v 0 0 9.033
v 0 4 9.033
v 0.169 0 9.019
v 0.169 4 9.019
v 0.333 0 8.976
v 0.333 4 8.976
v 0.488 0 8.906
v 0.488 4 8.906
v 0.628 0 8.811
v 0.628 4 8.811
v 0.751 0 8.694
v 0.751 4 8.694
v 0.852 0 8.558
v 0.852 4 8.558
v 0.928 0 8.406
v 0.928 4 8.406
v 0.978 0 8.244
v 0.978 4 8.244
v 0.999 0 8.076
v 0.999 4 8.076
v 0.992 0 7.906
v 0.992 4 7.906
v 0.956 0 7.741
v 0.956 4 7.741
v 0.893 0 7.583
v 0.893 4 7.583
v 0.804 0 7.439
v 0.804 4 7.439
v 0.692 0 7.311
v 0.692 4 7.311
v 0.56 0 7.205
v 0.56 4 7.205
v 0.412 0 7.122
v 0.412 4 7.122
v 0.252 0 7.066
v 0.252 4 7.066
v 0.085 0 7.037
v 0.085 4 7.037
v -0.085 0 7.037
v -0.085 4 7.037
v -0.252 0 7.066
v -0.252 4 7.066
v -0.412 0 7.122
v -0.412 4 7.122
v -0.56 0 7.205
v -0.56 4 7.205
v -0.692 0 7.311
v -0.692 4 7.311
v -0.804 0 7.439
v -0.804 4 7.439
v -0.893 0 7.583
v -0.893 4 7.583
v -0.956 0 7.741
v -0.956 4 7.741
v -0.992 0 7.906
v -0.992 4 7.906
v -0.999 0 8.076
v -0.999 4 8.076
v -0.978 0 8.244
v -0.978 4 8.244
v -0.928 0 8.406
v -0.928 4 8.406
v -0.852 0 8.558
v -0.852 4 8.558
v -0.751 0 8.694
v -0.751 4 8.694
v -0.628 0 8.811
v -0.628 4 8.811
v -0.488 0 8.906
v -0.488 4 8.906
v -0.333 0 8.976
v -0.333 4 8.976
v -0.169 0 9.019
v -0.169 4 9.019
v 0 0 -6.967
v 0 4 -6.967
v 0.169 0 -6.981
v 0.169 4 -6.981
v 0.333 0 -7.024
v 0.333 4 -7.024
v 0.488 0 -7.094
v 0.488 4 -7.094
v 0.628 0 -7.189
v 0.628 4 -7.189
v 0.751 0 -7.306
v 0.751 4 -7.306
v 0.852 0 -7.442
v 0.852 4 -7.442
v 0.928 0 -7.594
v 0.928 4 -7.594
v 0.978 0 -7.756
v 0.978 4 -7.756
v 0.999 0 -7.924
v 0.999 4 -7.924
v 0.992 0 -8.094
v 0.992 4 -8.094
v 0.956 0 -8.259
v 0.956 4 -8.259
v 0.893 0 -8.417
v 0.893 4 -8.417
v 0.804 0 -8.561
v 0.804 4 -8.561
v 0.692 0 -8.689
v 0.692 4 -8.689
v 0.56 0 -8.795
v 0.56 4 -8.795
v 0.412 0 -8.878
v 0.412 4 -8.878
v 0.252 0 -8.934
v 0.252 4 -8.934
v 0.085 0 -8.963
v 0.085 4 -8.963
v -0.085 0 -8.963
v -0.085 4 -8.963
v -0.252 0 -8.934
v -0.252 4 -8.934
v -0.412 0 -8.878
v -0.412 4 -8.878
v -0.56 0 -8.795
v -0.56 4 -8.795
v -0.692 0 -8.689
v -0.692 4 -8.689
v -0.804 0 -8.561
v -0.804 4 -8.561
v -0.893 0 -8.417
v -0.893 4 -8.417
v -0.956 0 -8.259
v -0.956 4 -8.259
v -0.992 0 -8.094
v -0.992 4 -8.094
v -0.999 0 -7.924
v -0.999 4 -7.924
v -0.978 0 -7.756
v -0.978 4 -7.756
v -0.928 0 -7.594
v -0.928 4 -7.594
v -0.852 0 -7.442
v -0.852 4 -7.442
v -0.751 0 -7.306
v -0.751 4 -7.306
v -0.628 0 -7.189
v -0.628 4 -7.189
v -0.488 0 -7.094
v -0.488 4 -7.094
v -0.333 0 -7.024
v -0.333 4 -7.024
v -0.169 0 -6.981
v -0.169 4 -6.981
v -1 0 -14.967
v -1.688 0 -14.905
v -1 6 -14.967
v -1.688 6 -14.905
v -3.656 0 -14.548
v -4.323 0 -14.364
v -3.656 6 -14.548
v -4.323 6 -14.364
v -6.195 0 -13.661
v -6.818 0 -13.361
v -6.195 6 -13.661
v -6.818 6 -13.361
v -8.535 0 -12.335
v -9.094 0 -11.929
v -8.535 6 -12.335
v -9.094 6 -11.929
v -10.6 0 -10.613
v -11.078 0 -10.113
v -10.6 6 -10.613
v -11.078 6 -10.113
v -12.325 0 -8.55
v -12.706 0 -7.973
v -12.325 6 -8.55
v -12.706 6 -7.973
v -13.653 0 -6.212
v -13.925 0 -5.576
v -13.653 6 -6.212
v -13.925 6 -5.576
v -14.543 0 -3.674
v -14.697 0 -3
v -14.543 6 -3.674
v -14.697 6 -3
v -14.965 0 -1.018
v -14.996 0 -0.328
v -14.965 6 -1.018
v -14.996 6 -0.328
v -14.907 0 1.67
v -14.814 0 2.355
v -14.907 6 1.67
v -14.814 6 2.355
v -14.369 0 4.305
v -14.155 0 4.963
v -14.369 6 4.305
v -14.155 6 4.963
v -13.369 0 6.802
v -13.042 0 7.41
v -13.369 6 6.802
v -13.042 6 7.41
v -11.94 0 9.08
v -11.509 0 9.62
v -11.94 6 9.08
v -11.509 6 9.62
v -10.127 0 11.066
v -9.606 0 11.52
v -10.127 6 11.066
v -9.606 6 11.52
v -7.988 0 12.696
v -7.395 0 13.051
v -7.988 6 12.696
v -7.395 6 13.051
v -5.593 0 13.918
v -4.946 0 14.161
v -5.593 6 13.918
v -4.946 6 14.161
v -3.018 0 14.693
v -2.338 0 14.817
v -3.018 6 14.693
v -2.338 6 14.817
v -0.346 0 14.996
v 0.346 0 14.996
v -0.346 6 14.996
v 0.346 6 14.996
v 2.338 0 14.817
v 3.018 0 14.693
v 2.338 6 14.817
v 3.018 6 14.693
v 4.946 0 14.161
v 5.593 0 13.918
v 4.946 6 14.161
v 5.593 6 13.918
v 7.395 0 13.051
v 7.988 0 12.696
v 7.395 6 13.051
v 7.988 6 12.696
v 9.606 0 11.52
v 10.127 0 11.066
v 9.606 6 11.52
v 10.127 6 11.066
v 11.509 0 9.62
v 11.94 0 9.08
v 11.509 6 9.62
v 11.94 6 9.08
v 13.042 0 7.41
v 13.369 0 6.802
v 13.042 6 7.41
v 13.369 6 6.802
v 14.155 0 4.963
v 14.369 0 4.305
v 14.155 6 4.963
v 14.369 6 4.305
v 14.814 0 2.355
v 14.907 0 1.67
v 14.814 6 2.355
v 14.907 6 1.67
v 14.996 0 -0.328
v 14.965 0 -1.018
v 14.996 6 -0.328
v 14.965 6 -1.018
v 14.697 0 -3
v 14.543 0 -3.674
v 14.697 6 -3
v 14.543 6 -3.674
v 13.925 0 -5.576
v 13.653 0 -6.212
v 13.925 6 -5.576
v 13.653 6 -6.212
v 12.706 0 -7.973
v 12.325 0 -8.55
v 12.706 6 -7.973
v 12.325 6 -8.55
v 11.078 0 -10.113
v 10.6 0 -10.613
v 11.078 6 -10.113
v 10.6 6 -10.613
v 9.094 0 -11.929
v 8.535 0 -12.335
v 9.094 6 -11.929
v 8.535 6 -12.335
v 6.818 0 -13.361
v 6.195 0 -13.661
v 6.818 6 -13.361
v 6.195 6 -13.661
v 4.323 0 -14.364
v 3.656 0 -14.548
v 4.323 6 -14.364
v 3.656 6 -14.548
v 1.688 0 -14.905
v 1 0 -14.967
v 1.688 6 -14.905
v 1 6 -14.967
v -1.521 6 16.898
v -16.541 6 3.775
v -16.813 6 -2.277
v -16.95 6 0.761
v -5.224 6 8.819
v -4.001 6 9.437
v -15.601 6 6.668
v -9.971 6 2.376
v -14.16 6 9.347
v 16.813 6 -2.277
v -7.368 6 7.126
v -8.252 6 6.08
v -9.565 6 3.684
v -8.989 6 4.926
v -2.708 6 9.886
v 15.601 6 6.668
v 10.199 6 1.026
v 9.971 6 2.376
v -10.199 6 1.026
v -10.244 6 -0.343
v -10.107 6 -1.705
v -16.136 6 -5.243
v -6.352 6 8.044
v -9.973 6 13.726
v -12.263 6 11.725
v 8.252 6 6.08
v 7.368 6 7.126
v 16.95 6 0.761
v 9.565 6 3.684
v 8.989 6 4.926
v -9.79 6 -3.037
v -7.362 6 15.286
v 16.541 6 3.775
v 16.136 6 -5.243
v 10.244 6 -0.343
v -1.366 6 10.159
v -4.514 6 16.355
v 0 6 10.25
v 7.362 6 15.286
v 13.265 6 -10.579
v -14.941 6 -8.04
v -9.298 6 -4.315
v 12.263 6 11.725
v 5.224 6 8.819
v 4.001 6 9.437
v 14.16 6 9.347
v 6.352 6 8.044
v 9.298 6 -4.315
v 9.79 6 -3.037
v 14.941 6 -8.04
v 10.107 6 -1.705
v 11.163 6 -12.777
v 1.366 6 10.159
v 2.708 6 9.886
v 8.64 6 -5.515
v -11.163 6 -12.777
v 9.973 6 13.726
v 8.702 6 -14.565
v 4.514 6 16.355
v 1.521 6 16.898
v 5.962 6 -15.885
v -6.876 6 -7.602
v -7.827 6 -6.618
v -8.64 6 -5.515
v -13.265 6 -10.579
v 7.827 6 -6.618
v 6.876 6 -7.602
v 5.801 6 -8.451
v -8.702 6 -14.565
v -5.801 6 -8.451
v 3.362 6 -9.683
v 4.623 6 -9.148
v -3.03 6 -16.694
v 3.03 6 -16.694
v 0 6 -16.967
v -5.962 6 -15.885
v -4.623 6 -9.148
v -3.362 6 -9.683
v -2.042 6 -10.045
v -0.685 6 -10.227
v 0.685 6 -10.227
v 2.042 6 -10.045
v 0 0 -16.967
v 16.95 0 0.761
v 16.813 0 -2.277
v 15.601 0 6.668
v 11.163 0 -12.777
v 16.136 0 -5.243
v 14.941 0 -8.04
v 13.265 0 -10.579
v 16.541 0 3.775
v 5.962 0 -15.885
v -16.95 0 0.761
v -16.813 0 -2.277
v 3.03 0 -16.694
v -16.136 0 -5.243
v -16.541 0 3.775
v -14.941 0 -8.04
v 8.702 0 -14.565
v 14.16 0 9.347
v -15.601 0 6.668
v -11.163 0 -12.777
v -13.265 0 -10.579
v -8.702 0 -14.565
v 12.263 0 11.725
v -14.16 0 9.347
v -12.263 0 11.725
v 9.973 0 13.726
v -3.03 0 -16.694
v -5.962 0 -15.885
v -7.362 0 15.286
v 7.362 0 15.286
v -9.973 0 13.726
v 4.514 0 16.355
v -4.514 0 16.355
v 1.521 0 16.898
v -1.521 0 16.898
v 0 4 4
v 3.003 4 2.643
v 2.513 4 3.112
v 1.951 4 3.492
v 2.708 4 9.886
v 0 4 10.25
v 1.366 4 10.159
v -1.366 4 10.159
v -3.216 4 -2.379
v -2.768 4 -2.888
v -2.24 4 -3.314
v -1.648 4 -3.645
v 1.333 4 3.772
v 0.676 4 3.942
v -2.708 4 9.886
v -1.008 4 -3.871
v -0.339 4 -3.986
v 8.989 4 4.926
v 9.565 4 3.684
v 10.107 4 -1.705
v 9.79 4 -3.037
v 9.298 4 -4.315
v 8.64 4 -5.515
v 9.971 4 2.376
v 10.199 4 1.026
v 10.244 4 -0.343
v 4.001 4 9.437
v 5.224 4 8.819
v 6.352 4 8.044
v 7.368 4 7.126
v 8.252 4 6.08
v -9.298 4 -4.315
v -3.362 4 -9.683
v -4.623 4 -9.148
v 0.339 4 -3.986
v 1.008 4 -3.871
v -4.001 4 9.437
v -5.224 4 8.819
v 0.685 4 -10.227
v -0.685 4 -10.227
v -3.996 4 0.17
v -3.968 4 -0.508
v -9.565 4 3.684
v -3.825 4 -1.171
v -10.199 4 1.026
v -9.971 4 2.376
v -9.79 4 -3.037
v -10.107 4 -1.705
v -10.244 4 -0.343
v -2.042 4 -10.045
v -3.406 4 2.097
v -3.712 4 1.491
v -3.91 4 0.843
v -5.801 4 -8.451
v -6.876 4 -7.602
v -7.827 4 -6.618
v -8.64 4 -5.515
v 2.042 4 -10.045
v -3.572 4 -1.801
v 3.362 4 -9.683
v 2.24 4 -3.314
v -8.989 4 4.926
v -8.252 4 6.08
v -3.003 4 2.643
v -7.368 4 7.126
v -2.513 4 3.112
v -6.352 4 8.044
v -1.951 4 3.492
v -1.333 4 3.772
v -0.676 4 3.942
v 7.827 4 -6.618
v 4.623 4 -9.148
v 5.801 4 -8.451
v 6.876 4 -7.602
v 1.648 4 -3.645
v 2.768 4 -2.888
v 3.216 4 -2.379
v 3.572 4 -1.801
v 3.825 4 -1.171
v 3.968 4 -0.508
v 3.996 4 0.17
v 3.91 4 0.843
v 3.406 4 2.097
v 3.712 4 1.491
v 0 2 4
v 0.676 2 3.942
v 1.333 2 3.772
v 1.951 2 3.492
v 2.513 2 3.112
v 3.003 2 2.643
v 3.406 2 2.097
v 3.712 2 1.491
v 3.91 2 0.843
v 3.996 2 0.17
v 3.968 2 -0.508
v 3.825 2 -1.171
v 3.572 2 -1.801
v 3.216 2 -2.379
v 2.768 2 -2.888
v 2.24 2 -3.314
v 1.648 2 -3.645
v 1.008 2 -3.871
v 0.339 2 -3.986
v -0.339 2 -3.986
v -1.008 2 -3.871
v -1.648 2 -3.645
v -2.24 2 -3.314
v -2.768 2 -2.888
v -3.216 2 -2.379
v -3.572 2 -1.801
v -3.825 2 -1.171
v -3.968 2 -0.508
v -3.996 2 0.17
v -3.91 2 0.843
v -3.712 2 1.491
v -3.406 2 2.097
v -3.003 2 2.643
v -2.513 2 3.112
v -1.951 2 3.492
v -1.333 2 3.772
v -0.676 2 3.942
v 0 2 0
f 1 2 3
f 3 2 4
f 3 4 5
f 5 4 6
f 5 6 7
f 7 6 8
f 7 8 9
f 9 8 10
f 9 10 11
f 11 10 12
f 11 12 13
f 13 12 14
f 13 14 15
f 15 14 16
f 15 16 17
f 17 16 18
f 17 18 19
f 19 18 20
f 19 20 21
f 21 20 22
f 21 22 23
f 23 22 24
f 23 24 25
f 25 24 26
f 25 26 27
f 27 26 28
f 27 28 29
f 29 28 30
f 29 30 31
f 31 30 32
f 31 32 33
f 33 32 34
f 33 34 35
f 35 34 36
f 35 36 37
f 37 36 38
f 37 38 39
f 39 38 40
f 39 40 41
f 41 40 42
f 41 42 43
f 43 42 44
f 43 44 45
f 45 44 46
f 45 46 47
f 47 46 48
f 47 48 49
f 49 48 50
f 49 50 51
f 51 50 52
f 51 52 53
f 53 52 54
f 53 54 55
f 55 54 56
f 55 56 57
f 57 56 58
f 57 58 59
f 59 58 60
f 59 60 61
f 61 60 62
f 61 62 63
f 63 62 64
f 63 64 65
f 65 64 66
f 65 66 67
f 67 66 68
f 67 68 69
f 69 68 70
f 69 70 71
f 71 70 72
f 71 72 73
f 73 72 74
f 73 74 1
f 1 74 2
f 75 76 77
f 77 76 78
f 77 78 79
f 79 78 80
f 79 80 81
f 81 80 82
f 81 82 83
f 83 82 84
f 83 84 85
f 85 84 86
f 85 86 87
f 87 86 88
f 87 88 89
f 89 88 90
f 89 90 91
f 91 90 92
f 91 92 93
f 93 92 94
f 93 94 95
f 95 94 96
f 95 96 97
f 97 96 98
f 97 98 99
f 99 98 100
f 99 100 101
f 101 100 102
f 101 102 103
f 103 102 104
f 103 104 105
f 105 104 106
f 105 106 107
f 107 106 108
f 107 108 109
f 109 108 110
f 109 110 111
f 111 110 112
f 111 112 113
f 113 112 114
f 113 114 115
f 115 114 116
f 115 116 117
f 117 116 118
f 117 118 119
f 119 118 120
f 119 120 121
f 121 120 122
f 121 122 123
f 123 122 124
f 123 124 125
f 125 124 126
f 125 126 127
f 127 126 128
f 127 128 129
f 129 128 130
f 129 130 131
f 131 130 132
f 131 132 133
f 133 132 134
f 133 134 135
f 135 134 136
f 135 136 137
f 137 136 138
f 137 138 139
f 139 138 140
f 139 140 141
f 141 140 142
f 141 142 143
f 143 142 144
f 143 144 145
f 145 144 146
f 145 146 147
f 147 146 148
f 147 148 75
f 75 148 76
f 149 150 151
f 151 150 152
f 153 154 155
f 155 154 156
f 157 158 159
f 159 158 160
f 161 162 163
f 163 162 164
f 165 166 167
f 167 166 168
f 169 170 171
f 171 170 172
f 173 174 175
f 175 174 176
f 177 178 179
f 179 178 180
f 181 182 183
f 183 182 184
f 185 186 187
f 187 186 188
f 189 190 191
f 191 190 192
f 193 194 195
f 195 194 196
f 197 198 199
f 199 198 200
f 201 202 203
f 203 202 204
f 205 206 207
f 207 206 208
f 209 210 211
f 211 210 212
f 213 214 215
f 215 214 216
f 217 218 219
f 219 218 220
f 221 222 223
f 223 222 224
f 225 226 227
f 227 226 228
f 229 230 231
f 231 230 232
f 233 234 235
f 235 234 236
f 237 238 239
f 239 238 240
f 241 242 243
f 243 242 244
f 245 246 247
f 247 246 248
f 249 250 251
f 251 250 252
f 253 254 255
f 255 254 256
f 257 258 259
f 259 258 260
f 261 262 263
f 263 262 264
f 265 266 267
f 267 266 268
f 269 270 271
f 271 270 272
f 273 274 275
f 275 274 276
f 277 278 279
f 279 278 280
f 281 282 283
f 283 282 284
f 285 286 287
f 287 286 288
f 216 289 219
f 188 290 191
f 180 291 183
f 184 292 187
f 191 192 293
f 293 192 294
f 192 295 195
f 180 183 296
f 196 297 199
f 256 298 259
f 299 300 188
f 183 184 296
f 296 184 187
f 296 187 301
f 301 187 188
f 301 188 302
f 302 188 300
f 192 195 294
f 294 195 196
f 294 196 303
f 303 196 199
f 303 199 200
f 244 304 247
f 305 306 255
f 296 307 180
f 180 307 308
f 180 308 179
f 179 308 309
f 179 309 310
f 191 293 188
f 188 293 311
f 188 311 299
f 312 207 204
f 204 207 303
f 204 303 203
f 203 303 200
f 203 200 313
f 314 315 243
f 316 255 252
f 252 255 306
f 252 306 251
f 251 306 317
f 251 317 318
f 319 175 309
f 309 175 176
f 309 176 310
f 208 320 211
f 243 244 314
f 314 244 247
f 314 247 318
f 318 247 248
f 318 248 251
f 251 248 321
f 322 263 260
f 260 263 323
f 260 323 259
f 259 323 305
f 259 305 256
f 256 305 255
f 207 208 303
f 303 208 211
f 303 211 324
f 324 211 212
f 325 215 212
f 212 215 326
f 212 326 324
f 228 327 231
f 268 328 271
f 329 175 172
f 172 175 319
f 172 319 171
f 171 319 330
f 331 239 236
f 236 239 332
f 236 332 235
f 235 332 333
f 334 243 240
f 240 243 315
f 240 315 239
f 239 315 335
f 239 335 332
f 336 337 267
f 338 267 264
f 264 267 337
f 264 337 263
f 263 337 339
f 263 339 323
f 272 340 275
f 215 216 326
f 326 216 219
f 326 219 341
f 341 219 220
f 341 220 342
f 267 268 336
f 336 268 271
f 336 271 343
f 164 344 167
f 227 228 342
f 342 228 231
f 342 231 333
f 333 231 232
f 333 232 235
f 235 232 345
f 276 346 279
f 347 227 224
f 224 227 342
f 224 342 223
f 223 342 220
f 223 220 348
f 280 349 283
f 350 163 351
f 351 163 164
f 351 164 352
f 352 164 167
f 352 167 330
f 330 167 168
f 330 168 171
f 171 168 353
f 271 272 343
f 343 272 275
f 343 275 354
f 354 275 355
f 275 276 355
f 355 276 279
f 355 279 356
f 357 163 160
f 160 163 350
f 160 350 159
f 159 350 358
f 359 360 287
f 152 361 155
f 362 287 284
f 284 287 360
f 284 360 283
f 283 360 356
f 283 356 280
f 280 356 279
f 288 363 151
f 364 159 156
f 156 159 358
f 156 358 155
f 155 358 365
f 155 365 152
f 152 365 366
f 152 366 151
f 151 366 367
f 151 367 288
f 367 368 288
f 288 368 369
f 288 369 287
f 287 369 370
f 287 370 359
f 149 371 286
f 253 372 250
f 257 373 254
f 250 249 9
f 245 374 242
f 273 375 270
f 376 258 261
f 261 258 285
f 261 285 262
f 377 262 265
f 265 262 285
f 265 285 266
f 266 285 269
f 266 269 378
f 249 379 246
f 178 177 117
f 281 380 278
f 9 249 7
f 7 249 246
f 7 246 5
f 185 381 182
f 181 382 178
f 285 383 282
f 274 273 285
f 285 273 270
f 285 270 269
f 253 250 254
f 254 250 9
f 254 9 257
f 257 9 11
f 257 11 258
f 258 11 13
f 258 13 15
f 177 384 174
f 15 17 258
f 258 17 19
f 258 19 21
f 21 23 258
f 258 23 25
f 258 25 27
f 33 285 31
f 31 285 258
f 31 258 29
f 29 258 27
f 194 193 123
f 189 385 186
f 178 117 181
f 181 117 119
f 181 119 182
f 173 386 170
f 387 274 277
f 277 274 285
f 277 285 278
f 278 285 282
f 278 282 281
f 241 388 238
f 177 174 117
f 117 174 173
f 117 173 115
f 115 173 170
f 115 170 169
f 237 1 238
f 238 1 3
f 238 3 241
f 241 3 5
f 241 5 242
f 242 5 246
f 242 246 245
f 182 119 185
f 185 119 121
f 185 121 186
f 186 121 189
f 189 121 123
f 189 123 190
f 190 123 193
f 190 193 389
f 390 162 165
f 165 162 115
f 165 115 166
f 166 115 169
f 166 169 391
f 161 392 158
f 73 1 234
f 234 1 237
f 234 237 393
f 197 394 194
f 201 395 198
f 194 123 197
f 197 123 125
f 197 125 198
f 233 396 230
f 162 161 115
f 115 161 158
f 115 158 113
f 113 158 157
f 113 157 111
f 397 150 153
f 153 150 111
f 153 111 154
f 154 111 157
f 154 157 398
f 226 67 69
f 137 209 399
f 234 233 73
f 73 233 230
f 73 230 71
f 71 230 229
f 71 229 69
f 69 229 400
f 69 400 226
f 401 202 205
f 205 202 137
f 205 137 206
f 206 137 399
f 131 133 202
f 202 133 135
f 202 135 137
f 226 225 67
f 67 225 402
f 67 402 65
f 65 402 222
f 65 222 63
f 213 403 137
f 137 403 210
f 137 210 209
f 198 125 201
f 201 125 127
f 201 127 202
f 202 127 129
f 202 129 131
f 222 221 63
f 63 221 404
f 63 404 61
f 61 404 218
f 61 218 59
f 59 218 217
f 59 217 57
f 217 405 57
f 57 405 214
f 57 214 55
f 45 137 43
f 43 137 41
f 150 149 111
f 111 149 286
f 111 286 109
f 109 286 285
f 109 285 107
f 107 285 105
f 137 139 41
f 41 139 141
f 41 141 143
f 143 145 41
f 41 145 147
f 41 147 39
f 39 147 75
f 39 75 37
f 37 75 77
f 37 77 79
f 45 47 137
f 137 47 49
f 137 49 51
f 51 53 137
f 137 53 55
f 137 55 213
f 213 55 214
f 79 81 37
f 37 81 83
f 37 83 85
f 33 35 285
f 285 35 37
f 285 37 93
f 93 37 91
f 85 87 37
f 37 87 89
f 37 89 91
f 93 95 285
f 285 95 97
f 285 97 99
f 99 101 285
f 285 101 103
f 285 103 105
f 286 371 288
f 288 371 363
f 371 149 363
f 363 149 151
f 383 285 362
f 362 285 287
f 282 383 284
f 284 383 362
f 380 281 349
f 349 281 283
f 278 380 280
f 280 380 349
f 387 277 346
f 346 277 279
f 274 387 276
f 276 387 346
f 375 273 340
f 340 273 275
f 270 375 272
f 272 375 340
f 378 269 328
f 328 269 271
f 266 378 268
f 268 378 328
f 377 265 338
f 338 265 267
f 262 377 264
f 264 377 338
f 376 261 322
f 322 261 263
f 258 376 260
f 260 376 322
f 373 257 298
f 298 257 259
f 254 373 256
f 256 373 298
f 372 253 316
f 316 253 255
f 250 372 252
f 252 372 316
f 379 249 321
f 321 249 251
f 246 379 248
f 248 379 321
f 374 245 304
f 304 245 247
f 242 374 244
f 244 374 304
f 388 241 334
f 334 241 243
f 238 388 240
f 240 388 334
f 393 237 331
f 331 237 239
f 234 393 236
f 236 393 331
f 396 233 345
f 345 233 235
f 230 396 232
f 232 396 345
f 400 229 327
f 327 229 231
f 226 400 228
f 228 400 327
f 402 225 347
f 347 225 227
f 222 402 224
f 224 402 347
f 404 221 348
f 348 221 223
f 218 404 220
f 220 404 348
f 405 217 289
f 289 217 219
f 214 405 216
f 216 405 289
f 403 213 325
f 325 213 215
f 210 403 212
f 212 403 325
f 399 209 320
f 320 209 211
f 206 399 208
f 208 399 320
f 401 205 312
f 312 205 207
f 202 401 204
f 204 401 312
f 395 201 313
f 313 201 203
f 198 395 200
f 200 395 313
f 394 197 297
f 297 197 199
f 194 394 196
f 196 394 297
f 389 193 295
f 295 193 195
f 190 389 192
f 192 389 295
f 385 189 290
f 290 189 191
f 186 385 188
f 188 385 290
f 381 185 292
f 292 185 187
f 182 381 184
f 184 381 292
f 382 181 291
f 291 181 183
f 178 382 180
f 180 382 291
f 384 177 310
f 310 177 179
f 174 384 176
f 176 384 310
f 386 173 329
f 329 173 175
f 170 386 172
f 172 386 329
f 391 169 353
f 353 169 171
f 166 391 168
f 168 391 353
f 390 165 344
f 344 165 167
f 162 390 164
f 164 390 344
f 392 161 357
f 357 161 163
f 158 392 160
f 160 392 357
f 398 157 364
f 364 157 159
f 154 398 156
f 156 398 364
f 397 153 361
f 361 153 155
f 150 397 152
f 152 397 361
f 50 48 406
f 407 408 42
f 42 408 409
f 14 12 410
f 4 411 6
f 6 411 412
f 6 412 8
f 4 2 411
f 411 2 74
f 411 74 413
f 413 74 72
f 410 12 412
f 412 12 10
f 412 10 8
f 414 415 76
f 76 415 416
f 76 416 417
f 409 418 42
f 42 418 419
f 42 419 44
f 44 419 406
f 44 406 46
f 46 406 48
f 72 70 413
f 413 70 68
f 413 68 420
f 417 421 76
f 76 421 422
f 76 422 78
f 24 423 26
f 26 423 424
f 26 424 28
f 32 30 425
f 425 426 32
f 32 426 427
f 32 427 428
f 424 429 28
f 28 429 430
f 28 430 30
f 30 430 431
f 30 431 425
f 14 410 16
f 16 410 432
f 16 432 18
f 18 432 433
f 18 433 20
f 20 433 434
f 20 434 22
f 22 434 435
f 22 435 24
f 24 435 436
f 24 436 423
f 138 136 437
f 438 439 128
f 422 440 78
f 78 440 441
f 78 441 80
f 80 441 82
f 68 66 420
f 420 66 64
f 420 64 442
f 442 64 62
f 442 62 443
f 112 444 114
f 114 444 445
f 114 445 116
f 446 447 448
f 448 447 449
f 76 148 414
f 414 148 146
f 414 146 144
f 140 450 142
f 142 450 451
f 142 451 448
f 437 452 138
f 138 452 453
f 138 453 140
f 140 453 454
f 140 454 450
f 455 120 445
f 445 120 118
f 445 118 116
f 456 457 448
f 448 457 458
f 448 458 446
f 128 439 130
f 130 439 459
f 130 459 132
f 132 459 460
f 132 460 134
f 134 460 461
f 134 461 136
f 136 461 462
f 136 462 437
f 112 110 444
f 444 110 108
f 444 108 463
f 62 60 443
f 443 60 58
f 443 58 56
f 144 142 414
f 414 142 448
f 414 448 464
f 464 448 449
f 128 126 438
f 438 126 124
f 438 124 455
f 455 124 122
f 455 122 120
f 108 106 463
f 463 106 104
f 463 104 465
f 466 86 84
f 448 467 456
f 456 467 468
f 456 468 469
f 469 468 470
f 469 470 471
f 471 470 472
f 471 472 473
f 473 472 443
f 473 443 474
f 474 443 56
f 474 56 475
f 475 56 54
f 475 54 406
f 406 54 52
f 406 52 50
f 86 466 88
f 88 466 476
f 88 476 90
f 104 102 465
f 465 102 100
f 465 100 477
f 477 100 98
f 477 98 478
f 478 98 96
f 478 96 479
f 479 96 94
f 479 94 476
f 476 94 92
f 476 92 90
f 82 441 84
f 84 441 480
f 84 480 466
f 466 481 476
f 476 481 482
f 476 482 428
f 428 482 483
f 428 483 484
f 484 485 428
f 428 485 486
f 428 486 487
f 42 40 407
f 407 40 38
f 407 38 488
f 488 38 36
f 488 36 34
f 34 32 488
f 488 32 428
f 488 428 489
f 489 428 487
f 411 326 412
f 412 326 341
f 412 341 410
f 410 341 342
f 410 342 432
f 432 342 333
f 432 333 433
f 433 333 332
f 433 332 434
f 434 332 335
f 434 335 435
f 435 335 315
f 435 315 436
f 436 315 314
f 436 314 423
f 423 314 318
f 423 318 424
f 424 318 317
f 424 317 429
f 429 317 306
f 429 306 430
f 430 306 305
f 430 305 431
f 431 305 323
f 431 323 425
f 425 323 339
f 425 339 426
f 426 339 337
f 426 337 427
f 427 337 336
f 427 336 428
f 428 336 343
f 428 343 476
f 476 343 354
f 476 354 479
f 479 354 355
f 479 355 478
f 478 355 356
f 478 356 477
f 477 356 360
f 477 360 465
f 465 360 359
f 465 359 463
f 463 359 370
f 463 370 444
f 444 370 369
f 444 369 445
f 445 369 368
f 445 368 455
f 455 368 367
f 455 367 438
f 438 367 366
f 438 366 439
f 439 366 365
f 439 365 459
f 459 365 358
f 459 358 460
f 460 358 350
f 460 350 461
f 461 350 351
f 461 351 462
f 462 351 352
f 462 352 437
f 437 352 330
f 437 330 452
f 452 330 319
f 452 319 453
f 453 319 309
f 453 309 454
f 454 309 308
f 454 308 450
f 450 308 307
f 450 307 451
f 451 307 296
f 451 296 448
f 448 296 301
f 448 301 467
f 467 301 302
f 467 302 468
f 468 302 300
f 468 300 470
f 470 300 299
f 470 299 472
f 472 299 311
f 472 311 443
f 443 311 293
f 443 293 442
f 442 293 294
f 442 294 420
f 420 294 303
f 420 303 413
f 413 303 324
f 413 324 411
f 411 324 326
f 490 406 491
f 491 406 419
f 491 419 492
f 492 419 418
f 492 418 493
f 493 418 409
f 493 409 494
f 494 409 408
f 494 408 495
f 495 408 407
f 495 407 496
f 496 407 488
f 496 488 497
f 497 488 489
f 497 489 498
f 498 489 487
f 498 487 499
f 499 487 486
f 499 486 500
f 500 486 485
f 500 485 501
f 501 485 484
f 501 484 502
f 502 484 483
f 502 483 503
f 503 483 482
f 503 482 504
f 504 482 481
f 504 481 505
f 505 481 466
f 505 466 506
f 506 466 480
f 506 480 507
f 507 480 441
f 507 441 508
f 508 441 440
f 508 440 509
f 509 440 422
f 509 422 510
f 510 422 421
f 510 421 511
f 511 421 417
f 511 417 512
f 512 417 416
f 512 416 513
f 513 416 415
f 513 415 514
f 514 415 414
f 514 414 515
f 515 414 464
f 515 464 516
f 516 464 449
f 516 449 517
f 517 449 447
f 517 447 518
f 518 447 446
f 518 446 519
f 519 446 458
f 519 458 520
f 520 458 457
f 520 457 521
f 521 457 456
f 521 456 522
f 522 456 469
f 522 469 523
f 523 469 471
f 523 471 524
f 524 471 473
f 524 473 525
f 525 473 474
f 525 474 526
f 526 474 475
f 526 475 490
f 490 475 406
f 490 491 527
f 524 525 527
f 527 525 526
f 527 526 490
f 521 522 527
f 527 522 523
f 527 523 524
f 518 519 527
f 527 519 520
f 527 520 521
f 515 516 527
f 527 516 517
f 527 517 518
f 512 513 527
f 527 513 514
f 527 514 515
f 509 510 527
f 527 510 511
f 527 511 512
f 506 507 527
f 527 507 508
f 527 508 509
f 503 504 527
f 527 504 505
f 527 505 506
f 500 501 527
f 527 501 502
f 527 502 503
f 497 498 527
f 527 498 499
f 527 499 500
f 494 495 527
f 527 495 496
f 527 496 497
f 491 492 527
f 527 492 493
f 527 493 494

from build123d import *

# Parameters (mm, degrees)
SKETCH_1_R          = 15
EXTRUDE_1_DEPTH     = 6
EXTRUDE_2_DEPTH     = 6
SKETCH_3_R          = 1
CUT_EXTRUDE_1_DEPTH = 6
SKETCH_4_R          = 10.25
CUT_EXTRUDE_2_DEPTH = 2
SKETCH_5_R          = 4
CUT_EXTRUDE_3_DEPTH = 2


with BuildPart() as part:
    # 草图1 → 凸台-拉伸1 (new body)
    with BuildSketch(Plane(origin=(0, 0, 0), x_dir=(1, 0, 0), z_dir=(0, 1, 0))):
        Circle(SKETCH_1_R)
    extrude(amount=EXTRUDE_1_DEPTH)

    # 草图2 → 凸台-拉伸2 (add)
    with BuildSketch(Plane(origin=(0, 6, 0), x_dir=(1, 0, 0), z_dir=(0, 1, 0))):
        Polygon((0, 16.966629547), (-1, 14.966629547), (-1, 14.940773363), (1, 14.940773363), (1, 14.966629547), align=None)
        Polygon((3.656324486, 14.547552758), (3.029508687, 16.69396883), (1.688465309, 14.904666548), (1.683848509, 14.879225883), (3.651707686, 14.522112094), align=None)
        Polygon((6.195131695, 13.660905654), (5.961646472, 15.884750219), (4.322661954, 14.363655302), (4.313576741, 14.339447841), (6.186046483, 13.636698193), align=None)
        Polygon((8.534822274, 12.335185802), (8.702172035, 14.564982666), (6.817924686, 13.360984356), (6.804663068, 13.338788146), (8.521560655, 12.312989592), align=None)
        Polygon((10.600196642, 10.613002928), (11.163002628, 12.777084586), (9.09405371, 11.92888038), (9.077041925, 11.909408826), (10.583184857, 10.593531374), align=None)
        Polygon((12.324871968, 8.549709408), (13.265045131, 10.578520495), (11.077892365, 10.113372373), (11.057677186, 10.097251306), (12.30465679, 8.533588341), align=None)
        Polygon((13.653415769, 6.211621193), (14.94073817, 8.03995405), (12.705678444, 7.972812257), (12.682909604, 7.960559822), (13.630646929, 6.199368758), align=None)
        Polygon((14.543127552, 3.673886362), (16.13622359, 5.242976867), (13.925093563, 5.575999395), (13.900502871, 5.568009395), (14.51853686, 3.665896362), align=None)
        Polygon((14.96541125, 1.018069801), (16.813077508, 2.277486094), (14.696944718, 2.999969324), (14.671322539, 2.996498564), (14.939789071, 1.014599041), align=None)
        Polygon((14.906694317, -1.670468362), (16.94954528, -0.761204956), (14.996423977, 0.327517771), (14.970593829, 0.328677804), (14.880864168, -1.669308329), align=None)
        Polygon((14.368863963, -4.305316297), (16.541240721, -3.775430253), (14.813905831, -2.355460473), (14.788697915, -2.349706931), (14.343656047, -4.299562755), align=None)
        Polygon((13.369206498, -6.801787824), (15.601287075, -6.668310115), (14.155256562, -4.962732279), (14.131481082, -4.952570151), (13.345431019, -6.791625697), align=None)
        Polygon((11.939851737, -9.079644294), (14.159895226, -9.346865003), (13.0416457, -7.410497786), (13.02006682, -7.396253693), (11.918272857, -9.0654002), align=None)
        Polygon((10.126740316, -11.065673525), (12.263392693, -11.725003959), (11.508865614, -9.620083797), (11.490176897, -9.602215554), (10.1080516, -11.047805282), align=None)
        Polygon((7.98814713, -12.696042904), (9.972734629, -13.726291641), (9.606181119, -11.5204724), (9.590983235, -11.499554308), (7.972949246, -12.675124812), align=None)
        Polygon((5.592808322, -13.918351018), (7.361544668, -15.286405015), (7.394746058, -13.05058354), (7.38352748, -13.027287923), (5.581589744, -13.895055402), align=None)
        Polygon((3.017712053, -14.693311879), (4.513748605, -16.355200755), (4.945637774, -14.161238188), (4.938759077, -14.136313787), (3.010833355, -14.668387478), align=None)
        Polygon((0.345624035, -14.996017606), (1.520876947, -16.898326885), (2.337572623, -14.816738988), (2.335254893, -14.790986893), (0.343306305, -14.970265511), align=None)
        Polygon((-2.337572623, -14.816738988), (-1.520876947, -16.898326885), (-0.345624035, -14.996017606), (-0.343306305, -14.970265511), (-2.335254893, -14.790986893), align=None)
        Polygon((-4.945637774, -14.161238188), (-4.513748605, -16.355200755), (-3.017712053, -14.693311879), (-3.010833355, -14.668387478), (-4.938759077, -14.136313787), align=None)
        Polygon((-7.394746058, -13.05058354), (-7.361544668, -15.286405015), (-5.592808322, -13.918351018), (-5.581589744, -13.895055402), (-7.38352748, -13.027287923), align=None)
        Polygon((-9.606181119, -11.5204724), (-9.972734629, -13.726291641), (-7.98814713, -12.696042904), (-7.972949246, -12.675124812), (-9.590983235, -11.499554308), align=None)
        Polygon((-11.508865614, -9.620083797), (-12.263392693, -11.725003959), (-10.126740316, -11.065673525), (-10.108051599, -11.047805282), (-11.490176897, -9.602215554), align=None)
        Polygon((-13.0416457, -7.410497786), (-14.159895226, -9.346865003), (-11.939851737, -9.079644294), (-11.918272857, -9.0654002), (-13.02006682, -7.396253693), align=None)
        Polygon((-14.155256562, -4.962732279), (-15.601287075, -6.668310115), (-13.369206498, -6.801787824), (-13.345431019, -6.791625697), (-14.131481082, -4.952570151), align=None)
        Polygon((-14.813905831, -2.355460473), (-16.541240721, -3.775430253), (-14.368863963, -4.305316297), (-14.343656047, -4.299562755), (-14.788697915, -2.349706931), align=None)
        Polygon((-14.996423977, 0.327517771), (-16.94954528, -0.761204956), (-14.906694317, -1.670468362), (-14.880864168, -1.669308329), (-14.970593829, 0.328677804), align=None)
        Polygon((-14.696944718, 2.999969324), (-16.813077508, 2.277486094), (-14.96541125, 1.018069801), (-14.939789071, 1.014599041), (-14.671322539, 2.996498564), align=None)
        Polygon((-13.925093563, 5.575999395), (-16.13622359, 5.242976867), (-14.543127552, 3.673886362), (-14.51853686, 3.665896362), (-13.900502871, 5.568009395), align=None)
        Polygon((-12.705678444, 7.972812257), (-14.94073817, 8.03995405), (-13.653415769, 6.211621193), (-13.630646929, 6.199368758), (-12.682909604, 7.960559822), align=None)
        Polygon((-11.077892364, 10.113372373), (-13.265045131, 10.578520495), (-12.324871968, 8.549709408), (-12.30465679, 8.533588341), (-11.057677186, 10.097251306), align=None)
        Polygon((-9.09405371, 11.92888038), (-11.163002628, 12.777084586), (-10.600196642, 10.613002928), (-10.583184857, 10.593531374), (-9.077041925, 11.909408826), align=None)
        Polygon((-6.817924686, 13.360984356), (-8.702172035, 14.564982666), (-8.534822274, 12.335185802), (-8.521560655, 12.312989592), (-6.804663068, 13.338788146), align=None)
        Polygon((-4.322661954, 14.363655302), (-5.961646472, 15.884750219), (-6.195131695, 13.660905654), (-6.186046483, 13.636698193), (-4.313576741, 14.339447841), align=None)
        Polygon((-1.688465309, 14.904666548), (-3.029508687, 16.69396883), (-3.656324486, 14.547552758), (-3.651707686, 14.522112094), (-1.683848509, 14.879225883), align=None)
    extrude(amount=-EXTRUDE_2_DEPTH)

    # 草图3 → 切除-拉伸1 (cut)
    with BuildSketch(Plane(origin=(0, 6, 0), x_dir=(1, 0, 0), z_dir=(0, 1, 0))):
        with Locations((0, 7.966629547)):
            Circle(SKETCH_3_R)
        with Locations((0, -8.033370453)):
            Circle(SKETCH_3_R)
    extrude(amount=-CUT_EXTRUDE_1_DEPTH, mode=Mode.SUBTRACT)

    # 草图4 → 切除-拉伸2 (cut)
    with BuildSketch(Plane(origin=(0, 6, 0), x_dir=(1, 0, 0), z_dir=(0, 1, 0))):
        Circle(SKETCH_4_R)
    extrude(amount=-CUT_EXTRUDE_2_DEPTH, mode=Mode.SUBTRACT)

    # 草图5 → 切除-拉伸3 (cut)
    with BuildSketch(Plane(origin=(0, 4, 0), x_dir=(1, 0, 0), z_dir=(0, 1, 0))):
        Circle(SKETCH_5_R)
    extrude(amount=-CUT_EXTRUDE_3_DEPTH, mode=Mode.SUBTRACT)


solid = part.part
